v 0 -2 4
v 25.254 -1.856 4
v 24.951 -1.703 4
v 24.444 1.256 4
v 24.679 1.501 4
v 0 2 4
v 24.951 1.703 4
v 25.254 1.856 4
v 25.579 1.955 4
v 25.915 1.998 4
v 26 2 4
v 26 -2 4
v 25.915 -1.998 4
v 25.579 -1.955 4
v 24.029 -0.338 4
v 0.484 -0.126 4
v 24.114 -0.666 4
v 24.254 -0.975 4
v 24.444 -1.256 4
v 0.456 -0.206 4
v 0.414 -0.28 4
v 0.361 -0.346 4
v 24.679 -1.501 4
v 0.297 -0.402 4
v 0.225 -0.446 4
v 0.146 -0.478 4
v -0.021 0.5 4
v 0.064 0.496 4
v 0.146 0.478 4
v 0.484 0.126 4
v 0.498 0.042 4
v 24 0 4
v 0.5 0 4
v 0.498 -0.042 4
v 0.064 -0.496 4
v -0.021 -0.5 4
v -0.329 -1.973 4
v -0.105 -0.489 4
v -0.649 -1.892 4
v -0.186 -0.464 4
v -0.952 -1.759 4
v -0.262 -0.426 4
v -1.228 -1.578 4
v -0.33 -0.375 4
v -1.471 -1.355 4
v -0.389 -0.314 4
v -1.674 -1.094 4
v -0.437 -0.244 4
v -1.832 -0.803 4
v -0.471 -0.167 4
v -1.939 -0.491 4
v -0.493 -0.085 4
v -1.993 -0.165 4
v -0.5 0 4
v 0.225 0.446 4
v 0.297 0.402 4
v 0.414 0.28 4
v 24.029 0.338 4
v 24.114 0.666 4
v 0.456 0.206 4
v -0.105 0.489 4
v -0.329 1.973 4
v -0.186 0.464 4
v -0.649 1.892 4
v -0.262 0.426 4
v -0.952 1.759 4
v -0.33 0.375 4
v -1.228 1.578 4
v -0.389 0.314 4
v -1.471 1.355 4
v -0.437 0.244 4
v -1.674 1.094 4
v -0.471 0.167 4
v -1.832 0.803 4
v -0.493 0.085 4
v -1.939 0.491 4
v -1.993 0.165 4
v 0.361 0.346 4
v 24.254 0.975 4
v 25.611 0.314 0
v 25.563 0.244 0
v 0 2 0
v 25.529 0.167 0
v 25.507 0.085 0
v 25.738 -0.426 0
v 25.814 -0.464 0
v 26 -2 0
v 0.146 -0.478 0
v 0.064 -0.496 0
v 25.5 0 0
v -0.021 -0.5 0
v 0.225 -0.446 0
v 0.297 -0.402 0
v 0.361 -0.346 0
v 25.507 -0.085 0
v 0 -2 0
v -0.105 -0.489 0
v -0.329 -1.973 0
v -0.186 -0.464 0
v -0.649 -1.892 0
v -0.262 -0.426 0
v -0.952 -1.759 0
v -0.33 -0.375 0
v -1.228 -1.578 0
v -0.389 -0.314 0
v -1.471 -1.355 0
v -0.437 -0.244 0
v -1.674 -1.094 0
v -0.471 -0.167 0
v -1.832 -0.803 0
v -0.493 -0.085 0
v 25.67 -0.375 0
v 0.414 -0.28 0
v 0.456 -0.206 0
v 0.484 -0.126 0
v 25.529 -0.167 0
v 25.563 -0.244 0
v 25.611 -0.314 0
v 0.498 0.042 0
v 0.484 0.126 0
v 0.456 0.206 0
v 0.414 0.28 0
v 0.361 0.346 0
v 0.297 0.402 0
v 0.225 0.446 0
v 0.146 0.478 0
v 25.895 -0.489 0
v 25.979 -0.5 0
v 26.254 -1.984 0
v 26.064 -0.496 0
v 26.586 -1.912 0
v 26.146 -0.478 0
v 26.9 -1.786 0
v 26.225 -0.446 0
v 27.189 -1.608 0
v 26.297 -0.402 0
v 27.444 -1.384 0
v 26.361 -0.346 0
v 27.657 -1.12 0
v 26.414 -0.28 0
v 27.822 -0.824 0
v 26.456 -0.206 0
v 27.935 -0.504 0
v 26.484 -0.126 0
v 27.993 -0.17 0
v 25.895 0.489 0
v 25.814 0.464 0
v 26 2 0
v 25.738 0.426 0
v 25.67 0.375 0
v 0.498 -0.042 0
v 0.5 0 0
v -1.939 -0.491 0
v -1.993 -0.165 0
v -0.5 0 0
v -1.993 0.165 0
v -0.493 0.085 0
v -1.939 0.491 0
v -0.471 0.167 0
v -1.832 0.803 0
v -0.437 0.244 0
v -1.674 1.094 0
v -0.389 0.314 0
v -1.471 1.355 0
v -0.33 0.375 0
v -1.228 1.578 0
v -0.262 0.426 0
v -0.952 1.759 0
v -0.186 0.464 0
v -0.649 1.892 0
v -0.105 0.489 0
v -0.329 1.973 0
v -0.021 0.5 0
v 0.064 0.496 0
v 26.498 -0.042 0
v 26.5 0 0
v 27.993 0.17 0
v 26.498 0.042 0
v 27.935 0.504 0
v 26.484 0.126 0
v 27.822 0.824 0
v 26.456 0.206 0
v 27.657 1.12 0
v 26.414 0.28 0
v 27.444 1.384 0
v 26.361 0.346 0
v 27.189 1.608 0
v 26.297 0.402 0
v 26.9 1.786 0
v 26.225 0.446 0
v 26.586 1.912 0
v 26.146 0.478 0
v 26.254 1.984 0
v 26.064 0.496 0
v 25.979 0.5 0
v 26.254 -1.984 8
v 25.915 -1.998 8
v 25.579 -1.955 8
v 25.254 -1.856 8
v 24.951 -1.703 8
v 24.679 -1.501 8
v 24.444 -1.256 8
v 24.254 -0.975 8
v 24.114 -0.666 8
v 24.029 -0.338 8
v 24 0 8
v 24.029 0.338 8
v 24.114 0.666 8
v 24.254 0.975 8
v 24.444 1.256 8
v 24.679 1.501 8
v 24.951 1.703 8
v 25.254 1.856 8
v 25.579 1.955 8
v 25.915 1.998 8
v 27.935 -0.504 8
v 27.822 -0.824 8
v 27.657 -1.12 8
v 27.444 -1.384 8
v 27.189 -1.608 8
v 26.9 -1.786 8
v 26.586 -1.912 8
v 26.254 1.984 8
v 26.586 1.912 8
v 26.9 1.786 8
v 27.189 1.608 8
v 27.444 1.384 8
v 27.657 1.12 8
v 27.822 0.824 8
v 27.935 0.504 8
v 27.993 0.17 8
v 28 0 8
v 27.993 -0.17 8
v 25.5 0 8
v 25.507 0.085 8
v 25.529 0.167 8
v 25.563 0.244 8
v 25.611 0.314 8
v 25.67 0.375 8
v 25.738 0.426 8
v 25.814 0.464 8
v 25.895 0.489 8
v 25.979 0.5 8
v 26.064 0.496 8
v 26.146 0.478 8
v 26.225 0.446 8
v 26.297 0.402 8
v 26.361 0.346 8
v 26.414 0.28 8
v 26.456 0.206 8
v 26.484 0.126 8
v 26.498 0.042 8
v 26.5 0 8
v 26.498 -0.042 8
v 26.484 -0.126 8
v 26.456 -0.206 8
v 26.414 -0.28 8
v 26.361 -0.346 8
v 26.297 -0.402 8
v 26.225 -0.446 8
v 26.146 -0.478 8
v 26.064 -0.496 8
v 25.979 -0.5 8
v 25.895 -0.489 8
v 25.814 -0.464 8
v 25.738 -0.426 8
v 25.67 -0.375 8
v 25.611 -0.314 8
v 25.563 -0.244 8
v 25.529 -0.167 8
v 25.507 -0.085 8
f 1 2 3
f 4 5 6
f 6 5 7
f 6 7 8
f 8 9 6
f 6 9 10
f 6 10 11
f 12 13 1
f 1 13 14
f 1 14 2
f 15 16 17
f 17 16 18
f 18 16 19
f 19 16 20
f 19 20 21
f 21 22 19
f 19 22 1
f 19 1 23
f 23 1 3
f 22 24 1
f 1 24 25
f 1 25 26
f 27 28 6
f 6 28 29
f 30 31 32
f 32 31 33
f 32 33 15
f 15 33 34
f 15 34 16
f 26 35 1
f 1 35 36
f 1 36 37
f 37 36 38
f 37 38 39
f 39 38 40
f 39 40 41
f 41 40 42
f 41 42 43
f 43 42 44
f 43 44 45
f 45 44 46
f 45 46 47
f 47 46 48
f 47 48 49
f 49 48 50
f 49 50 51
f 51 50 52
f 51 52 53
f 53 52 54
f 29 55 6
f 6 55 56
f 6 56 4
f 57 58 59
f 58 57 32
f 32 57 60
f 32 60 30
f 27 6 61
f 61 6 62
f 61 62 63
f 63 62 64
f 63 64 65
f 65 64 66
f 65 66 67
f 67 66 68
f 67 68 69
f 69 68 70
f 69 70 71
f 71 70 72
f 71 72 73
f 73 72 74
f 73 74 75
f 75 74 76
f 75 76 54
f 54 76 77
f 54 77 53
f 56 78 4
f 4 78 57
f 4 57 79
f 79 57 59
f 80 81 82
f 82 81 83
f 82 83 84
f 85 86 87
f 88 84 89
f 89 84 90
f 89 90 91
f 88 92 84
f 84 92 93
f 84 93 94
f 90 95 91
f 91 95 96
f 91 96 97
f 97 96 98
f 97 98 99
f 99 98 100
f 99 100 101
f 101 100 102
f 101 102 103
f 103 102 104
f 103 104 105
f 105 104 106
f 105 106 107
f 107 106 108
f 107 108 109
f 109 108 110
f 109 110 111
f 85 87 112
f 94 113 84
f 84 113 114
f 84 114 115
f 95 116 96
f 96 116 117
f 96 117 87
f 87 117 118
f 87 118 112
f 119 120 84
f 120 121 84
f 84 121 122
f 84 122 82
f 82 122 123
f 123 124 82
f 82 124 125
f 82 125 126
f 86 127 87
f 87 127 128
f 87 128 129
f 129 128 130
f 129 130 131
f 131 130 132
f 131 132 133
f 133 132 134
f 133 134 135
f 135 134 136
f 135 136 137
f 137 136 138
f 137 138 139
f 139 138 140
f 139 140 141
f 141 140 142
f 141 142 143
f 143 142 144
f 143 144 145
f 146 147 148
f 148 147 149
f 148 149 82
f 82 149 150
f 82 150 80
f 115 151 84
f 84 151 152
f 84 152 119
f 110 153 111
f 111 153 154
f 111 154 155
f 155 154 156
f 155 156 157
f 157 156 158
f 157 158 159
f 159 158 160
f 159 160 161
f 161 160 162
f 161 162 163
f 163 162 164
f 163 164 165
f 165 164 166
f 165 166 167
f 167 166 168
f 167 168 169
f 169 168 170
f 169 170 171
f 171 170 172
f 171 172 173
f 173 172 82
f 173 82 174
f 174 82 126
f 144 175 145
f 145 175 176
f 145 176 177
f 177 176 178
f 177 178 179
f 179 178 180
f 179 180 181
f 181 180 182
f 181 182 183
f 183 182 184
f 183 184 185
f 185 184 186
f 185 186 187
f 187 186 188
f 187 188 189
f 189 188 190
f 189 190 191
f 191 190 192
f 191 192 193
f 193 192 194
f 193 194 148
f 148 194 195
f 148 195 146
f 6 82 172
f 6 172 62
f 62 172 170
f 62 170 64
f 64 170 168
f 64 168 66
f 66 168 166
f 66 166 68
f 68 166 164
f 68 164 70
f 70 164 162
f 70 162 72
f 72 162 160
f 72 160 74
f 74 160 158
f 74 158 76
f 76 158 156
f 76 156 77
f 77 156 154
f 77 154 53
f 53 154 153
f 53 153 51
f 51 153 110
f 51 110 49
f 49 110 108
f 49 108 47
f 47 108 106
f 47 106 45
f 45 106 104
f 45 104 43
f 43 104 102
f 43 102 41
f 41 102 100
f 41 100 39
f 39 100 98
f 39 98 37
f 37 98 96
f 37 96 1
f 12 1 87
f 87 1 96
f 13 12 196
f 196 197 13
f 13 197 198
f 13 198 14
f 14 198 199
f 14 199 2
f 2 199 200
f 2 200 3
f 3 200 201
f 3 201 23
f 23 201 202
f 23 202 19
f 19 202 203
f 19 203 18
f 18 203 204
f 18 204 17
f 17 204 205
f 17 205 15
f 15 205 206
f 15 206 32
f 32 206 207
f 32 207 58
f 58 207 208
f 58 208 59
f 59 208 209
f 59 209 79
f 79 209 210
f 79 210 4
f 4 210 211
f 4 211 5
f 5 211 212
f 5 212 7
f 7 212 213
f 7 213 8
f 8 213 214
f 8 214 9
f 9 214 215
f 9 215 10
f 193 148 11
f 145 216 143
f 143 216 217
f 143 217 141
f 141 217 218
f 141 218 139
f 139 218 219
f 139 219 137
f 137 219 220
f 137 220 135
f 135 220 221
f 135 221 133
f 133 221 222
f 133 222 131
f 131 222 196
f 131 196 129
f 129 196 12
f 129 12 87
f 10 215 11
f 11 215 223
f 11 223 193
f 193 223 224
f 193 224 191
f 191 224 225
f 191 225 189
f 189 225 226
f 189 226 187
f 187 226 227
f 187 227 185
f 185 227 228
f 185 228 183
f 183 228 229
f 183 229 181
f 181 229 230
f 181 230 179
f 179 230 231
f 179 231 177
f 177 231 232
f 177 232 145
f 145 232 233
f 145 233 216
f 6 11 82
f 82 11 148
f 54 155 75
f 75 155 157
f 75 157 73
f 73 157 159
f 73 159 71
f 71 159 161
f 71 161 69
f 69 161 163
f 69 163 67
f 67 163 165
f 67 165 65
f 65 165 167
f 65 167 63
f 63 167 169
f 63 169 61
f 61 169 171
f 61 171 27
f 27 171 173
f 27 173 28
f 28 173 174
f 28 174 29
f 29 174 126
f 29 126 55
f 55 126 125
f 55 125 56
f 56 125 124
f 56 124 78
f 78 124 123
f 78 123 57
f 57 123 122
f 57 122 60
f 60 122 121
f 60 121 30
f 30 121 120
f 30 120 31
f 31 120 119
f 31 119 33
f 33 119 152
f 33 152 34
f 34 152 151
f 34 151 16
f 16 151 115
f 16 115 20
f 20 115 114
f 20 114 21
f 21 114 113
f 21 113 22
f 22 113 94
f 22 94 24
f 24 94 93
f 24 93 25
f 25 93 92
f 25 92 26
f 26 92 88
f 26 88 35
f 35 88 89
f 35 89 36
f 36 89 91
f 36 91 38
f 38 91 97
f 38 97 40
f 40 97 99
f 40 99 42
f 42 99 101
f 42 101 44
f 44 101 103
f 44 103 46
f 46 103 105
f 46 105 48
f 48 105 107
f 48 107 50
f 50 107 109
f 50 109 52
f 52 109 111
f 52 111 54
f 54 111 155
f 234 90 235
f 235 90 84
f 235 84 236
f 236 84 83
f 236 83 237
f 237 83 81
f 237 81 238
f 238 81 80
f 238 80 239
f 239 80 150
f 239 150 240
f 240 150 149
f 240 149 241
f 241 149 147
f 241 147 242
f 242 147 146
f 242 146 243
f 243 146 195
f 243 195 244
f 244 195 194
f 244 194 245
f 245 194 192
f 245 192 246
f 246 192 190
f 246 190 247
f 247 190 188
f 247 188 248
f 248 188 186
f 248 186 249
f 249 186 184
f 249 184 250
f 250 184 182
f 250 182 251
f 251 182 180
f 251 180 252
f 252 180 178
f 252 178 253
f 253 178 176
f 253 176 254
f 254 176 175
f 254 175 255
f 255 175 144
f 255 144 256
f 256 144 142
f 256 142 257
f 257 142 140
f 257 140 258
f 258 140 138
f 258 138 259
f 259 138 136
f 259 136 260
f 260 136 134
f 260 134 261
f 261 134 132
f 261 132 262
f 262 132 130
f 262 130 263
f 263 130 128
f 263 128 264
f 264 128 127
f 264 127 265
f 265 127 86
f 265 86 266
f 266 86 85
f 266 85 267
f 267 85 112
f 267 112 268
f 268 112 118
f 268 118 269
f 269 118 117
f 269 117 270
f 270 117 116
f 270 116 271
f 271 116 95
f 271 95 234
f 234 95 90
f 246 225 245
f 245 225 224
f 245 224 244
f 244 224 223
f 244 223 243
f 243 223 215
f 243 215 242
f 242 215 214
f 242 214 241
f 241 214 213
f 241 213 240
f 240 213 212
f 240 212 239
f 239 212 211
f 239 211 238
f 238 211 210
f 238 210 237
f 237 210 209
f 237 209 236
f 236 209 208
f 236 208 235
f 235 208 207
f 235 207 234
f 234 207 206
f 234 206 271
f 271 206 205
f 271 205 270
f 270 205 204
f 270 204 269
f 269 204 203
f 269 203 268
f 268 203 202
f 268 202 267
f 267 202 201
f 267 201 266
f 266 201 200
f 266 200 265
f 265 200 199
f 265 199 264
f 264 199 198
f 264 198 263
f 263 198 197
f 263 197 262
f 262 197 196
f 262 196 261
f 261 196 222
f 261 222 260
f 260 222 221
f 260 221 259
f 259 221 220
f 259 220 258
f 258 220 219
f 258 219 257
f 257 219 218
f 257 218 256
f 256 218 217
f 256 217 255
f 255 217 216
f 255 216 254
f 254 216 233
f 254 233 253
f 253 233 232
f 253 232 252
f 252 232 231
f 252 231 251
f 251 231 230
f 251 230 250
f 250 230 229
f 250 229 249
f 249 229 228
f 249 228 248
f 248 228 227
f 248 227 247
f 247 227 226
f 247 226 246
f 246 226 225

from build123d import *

# Parameters (mm, degrees)
SKETCH_1_R      = 0.5
EXTRUDE_1_DEPTH = 4
SKETCH_2_R      = 2
SKETCH_2_R_2    = 0.5
EXTRUDE_2_DEPTH = 4


with BuildPart() as part:
    # 草图1 → 凸台-拉伸1 (new body)
    with BuildSketch(Plane.XY):
        with BuildLine():
            Line((0, 2), (26, 2))
            ThreePointArc((26, 2), (28, 0), (26, -2))
            Line((26, -2), (0, -2))
            ThreePointArc((0, -2), (-2, 0), (0, 2))
        make_face()
        Circle(SKETCH_1_R, mode=Mode.SUBTRACT)
        with Locations((26, 0)):
            Circle(SKETCH_1_R, mode=Mode.SUBTRACT)
    extrude(amount=EXTRUDE_1_DEPTH)

    # 草图2 → 凸台-拉伸2 (add)
    with BuildSketch(Plane.XY.offset(4)):
        with Locations(Location((26, 0, 0), (0, 0, 90))):
            Circle(SKETCH_2_R)
        with Locations((26, 0)):
            Circle(SKETCH_2_R_2, mode=Mode.SUBTRACT)
    extrude(amount=EXTRUDE_2_DEPTH)


solid = part.part
